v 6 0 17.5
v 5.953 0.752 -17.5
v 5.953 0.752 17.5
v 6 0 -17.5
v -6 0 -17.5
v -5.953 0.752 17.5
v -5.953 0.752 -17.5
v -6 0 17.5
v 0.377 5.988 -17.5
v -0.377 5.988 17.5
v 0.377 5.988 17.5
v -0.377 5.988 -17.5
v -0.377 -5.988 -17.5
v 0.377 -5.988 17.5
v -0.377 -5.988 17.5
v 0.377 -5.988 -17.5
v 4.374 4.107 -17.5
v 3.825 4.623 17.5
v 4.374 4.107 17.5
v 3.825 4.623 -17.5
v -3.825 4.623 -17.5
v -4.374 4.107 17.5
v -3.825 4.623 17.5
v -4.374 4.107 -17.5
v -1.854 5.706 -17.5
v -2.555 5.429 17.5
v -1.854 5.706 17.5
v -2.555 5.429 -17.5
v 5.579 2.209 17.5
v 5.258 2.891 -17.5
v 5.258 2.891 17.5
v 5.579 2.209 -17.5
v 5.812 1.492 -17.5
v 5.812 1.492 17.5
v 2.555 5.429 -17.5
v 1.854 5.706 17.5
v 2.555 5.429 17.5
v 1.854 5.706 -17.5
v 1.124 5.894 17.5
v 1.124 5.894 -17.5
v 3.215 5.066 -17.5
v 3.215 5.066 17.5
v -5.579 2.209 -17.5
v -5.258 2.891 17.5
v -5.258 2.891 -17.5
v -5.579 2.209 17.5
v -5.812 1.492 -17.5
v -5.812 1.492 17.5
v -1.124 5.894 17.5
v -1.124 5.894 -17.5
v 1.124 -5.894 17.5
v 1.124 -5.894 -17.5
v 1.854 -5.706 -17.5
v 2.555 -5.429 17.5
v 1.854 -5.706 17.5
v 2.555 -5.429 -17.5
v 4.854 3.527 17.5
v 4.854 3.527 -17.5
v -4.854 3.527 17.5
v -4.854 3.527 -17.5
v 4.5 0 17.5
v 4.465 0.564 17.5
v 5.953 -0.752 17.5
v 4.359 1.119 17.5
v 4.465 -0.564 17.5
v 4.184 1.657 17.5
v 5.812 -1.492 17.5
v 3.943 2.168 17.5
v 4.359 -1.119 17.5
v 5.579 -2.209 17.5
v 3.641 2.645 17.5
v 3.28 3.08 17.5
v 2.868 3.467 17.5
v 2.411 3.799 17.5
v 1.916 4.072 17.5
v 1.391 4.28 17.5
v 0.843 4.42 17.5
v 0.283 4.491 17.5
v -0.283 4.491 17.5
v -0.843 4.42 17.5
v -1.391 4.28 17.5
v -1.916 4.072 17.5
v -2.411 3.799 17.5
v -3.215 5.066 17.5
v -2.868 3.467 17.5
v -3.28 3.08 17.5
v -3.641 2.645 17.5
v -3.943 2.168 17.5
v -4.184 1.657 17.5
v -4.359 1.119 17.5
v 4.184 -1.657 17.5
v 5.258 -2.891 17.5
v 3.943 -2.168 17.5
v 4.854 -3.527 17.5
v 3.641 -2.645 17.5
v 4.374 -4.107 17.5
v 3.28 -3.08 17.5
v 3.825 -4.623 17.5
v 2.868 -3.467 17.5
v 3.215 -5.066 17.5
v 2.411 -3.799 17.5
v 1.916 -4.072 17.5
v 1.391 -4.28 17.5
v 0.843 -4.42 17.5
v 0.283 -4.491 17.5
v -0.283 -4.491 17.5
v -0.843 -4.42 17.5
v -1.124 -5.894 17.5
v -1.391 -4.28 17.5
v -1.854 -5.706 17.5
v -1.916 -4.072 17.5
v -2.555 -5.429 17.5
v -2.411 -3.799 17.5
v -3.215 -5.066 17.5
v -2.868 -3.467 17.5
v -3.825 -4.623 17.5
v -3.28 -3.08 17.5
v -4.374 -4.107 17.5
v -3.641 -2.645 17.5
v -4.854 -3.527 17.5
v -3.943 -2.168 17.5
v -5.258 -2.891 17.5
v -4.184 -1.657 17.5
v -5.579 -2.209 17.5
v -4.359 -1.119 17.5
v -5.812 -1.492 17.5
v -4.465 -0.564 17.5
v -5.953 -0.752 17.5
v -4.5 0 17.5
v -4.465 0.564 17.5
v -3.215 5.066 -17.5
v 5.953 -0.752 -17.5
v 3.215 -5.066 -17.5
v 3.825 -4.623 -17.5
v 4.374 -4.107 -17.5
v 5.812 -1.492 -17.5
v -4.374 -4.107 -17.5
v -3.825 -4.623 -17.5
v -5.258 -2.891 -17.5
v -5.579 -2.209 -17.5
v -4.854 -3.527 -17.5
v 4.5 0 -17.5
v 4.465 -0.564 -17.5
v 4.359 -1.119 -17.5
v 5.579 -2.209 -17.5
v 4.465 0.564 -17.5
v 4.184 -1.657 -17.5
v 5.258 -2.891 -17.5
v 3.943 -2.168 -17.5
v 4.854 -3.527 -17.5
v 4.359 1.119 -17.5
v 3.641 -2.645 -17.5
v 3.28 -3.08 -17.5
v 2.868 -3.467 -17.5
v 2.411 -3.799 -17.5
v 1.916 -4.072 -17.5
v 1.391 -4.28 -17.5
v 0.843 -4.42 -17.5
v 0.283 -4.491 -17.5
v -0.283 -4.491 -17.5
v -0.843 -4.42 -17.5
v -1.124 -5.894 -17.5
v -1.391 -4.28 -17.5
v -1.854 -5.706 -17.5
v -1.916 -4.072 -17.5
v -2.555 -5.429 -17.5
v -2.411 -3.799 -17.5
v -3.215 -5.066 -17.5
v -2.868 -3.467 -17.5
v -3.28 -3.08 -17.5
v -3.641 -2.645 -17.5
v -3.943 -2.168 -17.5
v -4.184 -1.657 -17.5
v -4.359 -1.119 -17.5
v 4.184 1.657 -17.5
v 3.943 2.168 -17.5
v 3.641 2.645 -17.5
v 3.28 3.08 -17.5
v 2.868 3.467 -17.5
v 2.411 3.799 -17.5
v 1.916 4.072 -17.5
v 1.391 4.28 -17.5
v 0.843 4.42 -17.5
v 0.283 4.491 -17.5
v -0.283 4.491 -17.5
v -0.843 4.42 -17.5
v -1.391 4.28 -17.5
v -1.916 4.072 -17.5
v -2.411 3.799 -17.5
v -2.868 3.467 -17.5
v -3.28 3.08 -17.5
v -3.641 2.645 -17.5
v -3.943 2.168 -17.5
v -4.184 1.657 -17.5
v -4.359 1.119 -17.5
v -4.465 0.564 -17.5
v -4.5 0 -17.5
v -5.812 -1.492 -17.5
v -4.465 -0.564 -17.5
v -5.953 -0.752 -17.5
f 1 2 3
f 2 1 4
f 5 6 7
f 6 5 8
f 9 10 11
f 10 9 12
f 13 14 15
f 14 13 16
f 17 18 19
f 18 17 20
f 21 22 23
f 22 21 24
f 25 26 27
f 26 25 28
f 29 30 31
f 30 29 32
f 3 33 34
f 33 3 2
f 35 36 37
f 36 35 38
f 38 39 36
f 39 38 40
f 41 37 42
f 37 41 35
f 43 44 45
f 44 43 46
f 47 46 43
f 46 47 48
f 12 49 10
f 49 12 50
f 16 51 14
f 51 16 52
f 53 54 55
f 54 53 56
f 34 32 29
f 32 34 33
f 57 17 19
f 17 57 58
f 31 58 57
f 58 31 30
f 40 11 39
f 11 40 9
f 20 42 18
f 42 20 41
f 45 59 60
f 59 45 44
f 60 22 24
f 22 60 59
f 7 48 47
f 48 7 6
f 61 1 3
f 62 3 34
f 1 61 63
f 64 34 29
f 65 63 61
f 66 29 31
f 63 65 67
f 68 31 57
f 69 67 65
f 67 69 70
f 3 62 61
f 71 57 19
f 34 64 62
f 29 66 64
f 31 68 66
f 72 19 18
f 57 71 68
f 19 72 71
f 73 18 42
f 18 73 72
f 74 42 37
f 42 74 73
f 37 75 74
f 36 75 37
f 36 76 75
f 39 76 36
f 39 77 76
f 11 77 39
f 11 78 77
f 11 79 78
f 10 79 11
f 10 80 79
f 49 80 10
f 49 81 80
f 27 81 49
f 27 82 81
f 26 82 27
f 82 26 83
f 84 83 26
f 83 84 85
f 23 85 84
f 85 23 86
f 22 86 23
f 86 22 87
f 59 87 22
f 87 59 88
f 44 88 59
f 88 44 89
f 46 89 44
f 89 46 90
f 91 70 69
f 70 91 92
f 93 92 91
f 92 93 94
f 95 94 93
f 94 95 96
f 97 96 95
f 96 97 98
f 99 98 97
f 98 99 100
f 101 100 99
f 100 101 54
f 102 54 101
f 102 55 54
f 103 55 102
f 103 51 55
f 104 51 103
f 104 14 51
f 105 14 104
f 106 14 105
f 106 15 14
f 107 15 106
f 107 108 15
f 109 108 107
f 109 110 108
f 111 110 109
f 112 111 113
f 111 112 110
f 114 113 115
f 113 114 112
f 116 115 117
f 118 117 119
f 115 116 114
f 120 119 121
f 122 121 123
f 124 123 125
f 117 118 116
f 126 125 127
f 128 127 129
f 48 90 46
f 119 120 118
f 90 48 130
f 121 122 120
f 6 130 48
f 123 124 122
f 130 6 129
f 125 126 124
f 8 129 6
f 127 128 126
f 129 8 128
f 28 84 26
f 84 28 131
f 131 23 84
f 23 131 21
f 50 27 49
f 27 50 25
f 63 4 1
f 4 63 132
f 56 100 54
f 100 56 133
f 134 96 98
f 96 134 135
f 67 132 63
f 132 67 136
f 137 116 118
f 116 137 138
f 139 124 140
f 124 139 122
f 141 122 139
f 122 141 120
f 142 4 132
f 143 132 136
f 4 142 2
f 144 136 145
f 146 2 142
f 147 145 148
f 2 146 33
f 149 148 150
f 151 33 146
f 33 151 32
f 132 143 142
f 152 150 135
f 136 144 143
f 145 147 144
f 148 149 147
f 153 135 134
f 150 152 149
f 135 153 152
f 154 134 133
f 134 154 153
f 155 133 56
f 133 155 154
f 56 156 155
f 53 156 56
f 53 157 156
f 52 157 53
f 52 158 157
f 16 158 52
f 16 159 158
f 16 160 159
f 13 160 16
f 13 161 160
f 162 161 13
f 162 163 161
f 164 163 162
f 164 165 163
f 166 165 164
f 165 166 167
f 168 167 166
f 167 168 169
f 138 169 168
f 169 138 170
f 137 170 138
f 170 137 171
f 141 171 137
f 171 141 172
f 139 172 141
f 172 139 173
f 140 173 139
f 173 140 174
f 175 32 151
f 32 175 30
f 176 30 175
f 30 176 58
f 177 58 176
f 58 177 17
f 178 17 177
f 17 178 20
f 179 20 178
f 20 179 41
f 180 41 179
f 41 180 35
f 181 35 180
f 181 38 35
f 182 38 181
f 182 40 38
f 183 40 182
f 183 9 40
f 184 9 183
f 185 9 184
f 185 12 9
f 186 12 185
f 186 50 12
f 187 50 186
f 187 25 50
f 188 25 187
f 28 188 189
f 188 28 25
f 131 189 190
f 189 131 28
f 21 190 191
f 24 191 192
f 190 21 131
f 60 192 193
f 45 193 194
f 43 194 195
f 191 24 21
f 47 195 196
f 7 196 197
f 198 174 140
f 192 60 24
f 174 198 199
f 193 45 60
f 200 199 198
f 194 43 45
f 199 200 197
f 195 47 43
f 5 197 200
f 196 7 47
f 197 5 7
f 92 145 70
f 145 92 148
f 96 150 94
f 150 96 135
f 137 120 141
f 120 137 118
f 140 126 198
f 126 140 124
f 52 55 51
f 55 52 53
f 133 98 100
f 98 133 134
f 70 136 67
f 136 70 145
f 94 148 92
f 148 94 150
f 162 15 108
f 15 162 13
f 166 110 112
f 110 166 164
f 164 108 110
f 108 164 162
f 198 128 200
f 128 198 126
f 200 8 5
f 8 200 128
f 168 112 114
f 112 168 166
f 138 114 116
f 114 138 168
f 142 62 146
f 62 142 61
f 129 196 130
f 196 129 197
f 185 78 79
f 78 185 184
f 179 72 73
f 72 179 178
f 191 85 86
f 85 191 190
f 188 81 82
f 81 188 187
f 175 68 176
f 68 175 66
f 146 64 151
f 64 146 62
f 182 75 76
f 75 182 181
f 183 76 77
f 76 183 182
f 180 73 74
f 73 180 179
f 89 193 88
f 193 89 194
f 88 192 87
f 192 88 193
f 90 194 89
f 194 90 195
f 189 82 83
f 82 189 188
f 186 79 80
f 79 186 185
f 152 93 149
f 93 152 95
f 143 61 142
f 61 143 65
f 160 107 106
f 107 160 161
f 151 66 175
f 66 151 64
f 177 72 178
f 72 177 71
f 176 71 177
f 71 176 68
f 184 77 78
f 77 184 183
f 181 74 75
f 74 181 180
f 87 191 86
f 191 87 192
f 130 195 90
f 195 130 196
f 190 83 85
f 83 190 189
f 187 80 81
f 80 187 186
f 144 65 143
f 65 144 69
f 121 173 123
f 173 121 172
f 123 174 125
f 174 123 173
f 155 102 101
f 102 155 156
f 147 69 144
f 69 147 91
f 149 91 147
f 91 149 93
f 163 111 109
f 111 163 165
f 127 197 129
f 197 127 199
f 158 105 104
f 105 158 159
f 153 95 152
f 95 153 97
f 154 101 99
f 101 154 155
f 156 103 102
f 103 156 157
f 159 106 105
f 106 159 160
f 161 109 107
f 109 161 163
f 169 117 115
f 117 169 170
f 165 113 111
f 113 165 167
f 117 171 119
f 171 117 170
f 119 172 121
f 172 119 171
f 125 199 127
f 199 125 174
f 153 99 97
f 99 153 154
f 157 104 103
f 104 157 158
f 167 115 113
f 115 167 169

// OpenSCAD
$fn = 50;


difference() {
	union() {
		translate(v = [0, 0, -17.5000000000]) {
			cylinder(h = 35, r = 6.0000000000);
		}
	}
	union() {
		translate(v = [0, 0, -100.0000000000]) {
			cylinder(h = 200, r = 4.5000000000);
		}
	}
}
